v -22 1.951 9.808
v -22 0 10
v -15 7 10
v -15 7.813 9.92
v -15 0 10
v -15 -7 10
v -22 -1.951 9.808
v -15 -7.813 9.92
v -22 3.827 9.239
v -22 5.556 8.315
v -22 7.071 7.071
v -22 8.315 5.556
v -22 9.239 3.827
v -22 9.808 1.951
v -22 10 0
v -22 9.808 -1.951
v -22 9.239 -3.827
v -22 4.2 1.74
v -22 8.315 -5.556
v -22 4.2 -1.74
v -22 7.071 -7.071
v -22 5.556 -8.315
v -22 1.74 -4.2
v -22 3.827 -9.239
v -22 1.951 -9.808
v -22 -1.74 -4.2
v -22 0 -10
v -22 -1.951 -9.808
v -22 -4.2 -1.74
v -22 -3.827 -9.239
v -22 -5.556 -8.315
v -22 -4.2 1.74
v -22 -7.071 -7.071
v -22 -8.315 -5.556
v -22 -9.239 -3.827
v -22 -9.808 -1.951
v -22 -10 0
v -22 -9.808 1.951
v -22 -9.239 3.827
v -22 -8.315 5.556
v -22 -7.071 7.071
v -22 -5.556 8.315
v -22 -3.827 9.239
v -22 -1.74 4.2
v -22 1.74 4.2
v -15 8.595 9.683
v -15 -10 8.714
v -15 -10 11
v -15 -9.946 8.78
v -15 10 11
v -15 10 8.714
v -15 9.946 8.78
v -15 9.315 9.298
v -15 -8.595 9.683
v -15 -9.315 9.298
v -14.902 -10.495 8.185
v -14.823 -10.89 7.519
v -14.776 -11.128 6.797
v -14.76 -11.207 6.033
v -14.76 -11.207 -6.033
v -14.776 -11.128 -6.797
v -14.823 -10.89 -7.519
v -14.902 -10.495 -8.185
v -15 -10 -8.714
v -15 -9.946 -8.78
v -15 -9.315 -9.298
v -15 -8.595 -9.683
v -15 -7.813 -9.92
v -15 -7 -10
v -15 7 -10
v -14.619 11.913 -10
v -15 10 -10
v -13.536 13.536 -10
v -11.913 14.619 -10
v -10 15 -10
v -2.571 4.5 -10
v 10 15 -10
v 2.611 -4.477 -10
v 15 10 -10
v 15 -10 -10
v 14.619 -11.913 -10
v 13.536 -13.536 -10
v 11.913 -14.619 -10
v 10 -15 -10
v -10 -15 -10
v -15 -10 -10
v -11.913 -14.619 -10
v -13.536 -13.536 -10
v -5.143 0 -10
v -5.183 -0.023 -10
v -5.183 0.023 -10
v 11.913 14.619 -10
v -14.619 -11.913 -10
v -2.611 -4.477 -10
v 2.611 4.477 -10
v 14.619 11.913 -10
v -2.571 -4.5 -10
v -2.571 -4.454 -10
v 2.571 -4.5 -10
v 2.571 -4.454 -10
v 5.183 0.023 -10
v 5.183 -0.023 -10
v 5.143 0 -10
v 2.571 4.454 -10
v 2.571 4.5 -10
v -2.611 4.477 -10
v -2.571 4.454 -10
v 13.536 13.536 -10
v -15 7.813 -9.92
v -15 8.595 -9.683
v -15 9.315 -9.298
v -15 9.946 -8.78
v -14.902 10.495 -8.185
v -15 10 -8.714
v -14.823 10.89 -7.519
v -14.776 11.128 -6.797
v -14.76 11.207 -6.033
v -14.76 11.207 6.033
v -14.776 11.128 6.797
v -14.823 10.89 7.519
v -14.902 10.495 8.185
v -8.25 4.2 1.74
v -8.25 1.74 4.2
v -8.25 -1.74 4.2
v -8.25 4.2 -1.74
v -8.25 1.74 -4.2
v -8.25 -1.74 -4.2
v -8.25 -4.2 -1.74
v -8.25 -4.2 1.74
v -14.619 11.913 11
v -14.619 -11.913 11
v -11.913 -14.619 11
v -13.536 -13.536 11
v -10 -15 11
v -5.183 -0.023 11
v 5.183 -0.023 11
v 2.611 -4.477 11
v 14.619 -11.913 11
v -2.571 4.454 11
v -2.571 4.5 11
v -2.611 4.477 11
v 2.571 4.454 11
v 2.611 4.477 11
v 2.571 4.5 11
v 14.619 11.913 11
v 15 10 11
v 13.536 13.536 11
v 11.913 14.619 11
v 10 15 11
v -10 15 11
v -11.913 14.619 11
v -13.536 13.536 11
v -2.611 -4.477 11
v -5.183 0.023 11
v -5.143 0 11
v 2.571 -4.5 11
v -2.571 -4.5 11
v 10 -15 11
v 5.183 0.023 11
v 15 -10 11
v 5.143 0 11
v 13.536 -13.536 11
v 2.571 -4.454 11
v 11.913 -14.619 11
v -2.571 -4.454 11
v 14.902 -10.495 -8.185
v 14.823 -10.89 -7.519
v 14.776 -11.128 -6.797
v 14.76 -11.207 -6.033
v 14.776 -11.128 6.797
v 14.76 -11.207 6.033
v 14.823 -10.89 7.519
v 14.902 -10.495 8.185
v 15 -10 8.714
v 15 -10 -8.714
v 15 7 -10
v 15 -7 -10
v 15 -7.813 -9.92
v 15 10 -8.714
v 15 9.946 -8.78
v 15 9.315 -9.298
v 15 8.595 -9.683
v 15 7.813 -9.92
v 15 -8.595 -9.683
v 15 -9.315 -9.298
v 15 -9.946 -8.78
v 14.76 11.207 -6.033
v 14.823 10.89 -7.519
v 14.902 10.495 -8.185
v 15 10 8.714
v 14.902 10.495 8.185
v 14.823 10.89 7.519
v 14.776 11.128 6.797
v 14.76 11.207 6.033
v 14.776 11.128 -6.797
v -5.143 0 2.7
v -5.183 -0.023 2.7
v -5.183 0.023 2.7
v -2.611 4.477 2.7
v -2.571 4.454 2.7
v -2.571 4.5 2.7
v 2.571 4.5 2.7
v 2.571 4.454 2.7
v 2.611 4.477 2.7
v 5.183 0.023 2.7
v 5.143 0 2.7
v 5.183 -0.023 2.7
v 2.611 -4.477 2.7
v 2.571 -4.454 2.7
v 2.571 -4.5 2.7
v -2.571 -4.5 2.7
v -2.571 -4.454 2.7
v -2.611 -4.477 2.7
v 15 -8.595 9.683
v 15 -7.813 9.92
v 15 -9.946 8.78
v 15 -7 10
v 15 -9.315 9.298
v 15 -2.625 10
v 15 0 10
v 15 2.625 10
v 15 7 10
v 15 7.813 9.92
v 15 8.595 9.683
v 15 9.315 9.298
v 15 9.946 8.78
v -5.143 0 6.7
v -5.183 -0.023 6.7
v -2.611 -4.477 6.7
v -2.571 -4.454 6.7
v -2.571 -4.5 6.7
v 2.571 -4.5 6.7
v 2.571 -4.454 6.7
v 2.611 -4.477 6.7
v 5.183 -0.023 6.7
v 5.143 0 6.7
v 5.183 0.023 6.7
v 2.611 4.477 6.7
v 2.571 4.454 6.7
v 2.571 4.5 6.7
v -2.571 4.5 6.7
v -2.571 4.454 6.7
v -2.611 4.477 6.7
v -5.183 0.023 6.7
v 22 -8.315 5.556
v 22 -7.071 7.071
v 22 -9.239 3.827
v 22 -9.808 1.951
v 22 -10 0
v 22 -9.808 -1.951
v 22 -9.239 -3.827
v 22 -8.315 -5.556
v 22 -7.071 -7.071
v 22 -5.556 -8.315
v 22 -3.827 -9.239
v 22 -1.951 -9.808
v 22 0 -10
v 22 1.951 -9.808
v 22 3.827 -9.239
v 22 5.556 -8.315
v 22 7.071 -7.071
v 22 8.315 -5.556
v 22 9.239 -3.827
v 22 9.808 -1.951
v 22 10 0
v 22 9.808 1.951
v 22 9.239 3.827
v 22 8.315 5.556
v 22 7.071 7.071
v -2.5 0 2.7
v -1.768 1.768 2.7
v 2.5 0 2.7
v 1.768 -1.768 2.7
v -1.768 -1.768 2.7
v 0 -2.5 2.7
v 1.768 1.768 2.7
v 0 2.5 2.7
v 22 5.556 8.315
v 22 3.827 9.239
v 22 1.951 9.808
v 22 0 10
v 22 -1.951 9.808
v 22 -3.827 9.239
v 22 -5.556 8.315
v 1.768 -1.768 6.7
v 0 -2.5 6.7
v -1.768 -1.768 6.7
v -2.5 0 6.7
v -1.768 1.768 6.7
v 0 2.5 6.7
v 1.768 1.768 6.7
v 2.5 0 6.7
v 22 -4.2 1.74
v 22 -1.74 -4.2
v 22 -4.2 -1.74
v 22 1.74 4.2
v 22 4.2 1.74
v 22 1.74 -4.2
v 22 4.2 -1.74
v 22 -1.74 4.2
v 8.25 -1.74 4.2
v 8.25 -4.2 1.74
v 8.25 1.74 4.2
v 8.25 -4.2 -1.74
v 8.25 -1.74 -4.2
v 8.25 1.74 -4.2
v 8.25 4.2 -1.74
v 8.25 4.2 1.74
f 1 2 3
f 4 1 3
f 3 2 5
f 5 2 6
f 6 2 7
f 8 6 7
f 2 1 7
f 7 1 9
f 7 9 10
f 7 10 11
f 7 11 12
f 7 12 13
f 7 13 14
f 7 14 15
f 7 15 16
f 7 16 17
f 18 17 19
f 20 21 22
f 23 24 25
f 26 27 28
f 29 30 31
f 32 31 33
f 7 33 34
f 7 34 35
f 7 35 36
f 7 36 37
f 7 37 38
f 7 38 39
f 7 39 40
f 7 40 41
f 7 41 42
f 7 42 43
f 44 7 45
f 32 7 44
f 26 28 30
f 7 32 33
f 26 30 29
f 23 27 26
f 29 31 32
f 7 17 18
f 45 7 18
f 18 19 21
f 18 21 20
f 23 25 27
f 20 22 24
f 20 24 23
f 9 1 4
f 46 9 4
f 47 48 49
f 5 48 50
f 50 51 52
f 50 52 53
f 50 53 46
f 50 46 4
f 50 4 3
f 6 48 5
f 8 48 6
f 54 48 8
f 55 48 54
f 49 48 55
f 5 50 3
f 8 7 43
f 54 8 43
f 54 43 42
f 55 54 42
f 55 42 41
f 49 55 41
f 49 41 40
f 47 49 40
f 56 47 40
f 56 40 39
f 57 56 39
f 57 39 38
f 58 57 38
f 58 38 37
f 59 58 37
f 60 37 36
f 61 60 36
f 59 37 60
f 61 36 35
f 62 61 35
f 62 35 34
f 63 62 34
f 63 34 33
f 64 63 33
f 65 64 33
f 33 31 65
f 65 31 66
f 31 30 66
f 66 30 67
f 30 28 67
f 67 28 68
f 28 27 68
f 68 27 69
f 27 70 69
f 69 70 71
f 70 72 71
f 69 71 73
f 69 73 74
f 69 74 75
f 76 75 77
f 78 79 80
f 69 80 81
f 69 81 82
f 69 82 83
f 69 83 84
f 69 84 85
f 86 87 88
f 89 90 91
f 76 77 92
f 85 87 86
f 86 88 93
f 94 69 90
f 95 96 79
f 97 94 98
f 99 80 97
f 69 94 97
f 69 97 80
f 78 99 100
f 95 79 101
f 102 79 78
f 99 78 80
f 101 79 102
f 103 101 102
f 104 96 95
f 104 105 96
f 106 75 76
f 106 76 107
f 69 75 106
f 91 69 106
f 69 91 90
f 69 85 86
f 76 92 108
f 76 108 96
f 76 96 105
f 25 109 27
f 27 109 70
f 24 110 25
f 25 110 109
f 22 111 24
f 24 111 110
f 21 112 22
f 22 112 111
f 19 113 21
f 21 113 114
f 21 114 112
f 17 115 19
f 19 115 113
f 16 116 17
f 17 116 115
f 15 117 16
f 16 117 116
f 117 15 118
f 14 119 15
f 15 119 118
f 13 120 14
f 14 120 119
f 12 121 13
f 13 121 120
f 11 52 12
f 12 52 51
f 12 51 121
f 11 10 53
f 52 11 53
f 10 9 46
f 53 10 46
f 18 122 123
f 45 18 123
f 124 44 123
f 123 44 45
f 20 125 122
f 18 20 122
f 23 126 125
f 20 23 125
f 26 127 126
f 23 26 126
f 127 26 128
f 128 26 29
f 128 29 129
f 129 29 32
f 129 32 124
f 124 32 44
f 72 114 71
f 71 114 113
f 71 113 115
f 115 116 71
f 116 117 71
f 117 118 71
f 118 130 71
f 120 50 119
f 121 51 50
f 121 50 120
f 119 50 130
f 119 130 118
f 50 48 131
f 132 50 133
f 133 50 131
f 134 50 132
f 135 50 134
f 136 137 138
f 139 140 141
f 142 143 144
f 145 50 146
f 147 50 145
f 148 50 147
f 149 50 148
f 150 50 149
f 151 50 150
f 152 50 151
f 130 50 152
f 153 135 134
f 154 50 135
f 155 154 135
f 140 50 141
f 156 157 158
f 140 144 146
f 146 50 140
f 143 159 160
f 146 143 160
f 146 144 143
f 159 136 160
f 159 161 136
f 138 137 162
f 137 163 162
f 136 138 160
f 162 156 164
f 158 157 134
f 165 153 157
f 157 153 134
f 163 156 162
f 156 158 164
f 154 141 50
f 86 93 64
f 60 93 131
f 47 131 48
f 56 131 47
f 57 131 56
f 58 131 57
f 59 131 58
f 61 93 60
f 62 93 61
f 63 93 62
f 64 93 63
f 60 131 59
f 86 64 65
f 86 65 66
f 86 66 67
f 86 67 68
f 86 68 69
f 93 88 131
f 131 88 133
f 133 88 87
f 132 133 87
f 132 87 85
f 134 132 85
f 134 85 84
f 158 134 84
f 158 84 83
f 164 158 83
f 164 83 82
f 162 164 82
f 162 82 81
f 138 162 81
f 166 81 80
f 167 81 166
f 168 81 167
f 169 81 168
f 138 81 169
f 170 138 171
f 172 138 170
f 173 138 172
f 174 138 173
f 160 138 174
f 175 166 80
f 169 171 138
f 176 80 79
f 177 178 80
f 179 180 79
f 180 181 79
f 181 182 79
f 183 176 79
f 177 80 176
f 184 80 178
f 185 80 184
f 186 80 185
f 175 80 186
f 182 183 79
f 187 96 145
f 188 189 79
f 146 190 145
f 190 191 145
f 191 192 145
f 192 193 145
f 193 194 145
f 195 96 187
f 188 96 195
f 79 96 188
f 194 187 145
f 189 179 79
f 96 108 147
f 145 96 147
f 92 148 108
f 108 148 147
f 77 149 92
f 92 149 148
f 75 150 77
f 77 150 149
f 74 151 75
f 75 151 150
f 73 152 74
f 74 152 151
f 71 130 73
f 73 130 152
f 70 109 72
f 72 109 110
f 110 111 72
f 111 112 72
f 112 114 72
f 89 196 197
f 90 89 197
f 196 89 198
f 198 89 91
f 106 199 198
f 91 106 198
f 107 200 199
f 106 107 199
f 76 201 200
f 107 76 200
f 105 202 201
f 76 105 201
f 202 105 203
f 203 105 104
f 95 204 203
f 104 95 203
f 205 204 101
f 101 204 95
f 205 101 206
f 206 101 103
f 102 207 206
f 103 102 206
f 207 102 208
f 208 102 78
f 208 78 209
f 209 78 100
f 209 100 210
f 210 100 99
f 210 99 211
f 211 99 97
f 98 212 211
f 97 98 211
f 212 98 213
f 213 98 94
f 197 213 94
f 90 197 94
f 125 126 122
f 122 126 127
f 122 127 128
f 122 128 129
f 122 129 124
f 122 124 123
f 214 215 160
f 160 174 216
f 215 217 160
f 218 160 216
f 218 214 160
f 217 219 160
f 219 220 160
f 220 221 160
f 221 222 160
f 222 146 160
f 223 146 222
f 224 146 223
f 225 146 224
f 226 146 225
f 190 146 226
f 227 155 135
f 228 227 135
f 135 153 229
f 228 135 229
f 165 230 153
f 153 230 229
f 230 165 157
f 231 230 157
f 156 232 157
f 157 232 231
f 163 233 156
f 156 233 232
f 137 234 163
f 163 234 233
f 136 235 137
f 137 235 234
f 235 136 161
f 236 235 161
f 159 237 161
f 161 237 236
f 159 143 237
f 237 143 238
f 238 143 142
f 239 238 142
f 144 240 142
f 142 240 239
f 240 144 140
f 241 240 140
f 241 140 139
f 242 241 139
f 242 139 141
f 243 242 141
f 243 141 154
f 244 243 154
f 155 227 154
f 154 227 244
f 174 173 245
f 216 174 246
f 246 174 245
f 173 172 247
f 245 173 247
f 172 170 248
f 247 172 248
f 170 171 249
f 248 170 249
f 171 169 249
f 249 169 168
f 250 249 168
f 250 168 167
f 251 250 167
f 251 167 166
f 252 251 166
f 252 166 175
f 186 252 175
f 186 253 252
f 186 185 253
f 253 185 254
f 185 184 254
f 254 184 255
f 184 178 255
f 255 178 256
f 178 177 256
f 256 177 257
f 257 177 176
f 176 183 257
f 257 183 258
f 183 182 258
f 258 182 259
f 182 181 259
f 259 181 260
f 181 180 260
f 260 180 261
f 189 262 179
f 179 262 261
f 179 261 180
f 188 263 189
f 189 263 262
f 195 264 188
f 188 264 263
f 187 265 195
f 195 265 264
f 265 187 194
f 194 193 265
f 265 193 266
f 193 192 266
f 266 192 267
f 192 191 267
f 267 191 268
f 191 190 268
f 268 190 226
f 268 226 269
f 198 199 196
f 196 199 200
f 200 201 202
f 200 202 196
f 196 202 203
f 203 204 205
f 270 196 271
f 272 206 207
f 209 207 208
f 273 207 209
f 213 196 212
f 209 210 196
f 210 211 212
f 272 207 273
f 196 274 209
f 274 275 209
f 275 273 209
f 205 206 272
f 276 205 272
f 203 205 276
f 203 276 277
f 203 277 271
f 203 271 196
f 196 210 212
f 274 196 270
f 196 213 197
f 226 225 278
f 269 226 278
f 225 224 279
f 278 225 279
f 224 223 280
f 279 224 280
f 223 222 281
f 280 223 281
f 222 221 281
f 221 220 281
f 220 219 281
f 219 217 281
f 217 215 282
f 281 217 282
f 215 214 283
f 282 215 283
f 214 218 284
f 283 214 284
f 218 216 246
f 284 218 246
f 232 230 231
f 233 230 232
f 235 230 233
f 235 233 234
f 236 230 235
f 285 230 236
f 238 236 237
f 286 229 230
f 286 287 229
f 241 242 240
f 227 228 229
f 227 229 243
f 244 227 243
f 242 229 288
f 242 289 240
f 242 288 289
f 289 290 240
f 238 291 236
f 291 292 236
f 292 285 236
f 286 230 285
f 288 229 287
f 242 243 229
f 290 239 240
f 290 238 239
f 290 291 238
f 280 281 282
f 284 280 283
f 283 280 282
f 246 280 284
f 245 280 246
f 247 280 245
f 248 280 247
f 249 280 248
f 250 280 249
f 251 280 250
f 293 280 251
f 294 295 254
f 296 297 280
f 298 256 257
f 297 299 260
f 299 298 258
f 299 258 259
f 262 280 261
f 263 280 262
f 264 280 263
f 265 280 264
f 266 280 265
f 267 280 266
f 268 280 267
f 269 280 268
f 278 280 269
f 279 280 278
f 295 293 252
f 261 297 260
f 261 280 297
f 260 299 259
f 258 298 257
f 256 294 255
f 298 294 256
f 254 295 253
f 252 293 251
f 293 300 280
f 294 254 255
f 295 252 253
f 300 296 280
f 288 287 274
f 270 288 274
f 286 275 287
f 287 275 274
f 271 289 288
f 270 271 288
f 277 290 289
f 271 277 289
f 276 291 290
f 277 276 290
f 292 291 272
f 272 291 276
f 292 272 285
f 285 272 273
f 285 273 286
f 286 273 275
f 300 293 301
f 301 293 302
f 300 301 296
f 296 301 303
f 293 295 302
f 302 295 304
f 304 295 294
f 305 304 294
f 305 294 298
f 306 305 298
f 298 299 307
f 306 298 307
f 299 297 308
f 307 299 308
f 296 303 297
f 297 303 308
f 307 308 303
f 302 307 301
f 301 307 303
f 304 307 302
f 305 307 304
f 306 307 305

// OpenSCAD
// file: shapes.scad
/*
 *  OpenSCAD Shapes Library (www.openscad.org)
 *  Copyright (C) 2009  Catarina Mota
 *  Copyright (C) 2010  Elmo Mäntynen
 *
 *  License: LGPL 2.1 or later
*/

// 2D Shapes
//ngon(sides, radius, center=false);

// 3D Shapes
//box(width, height, depth);
//roundedBox(width, height, depth, radius);
//cone(height, radius);
//ellipticalCylinder(width, height, depth);
//ellipsoid(width, height);
//tube(height, radius, wall, center = false);
//tube2(height, ID, OD, center = false);
//ovalTube(width, height, depth, wall, center = false);
//hexagon(height, depth);
//octagon(height, depth);
//dodecagon(height, depth);
//hexagram(height, depth);
//rightTriangle(adjacent, opposite, depth);
//equiTriangle(side, depth);
//12ptStar(height, depth);

//----------------------

// size is a vector [w, h, d]
module box(width, height, depth) {
  cube([width, height, depth], true);
}

// size is a vector [w, h, d]
module roundedBox(width, height, depth, radius) {
  size=[width, height, depth];
  cube(size - [2*radius,0,0], true);
  cube(size - [0,2*radius,0], true);
  for (x = [radius-size[0]/2, -radius+size[0]/2],
       y = [radius-size[1]/2, -radius+size[1]/2]) {
    translate([x,y,0]) cylinder(r=radius, h=size[2], center=true);
  }
}

module cone(height, radius, center = false) {
  cylinder(height, radius, 0, center);
}

module ellipticalCylinder(w,h, height, center = false) {
  scale([1, h/w, 1]) cylinder(h=height, r=w, center=center);
}

module ellipsoid(w, h, center = false) {
  scale([1, h/w, 1]) sphere(r=w/2, center=center);
}

// wall is wall thickness
module tube(height, radius, wall, center = false) {
  difference() {
    cylinder(h=height, r=radius, center=center);
    cylinder(h=height, r=radius-wall, center=center);
  }
}

// wall is wall thickness
module tube2(height, ID, OD, center = false) {
  difference() {
    cylinder(h=height, r=OD/2, center=center);
    cylinder(h=height, r=ID/2, center=center);
  }
}

// wall is wall thickness
module ovalTube(height, rx, ry, wall, center = false) {
  difference() {
    scale([1, ry/rx, 1]) cylinder(h=height, r=rx, center=center);
    scale([(rx-wall)/rx, (ry-wall)/rx, 1]) cylinder(h=height, r=rx, center=center);
  }
}

// size is the XY plane size, height in Z
module hexagon(size, height) {
  boxWidth = size/1.75;
  for (r = [-60, 0, 60]) rotate([0,0,r]) cube([boxWidth, size, height], true);
}

// size is the XY plane size, height in Z
module octagon(size, height) {
  intersection() {
    cube([size, size, height], true);
    rotate([0,0,45]) cube([size, size, height], true);
  }
}

// size is the XY plane size, height in Z
module dodecagon(size, height) {
  intersection() {
    hexagon(size, height);
    rotate([0,0,90]) hexagon(size, height);
  }
}

// size is the XY plane size, height in Z
module hexagram(size, height) {
  boxWidth=size/1.75;
  for (v = [[0,1],[0,-1],[1,-1]]) {
    intersection() {
      rotate([0,0,60*v[0]]) cube([size, boxWidth, height], true);
      rotate([0,0,60*v[1]]) cube([size, boxWidth, height], true);
    }
  }
}

module rightTriangle(adjacent, opposite, height) {
  difference() {
    translate([-adjacent/2,opposite/2,0]) cube([adjacent, opposite, height], true);
    translate([-adjacent,0,0]) {
      rotate([0,0,atan(opposite/adjacent)]) dislocateBox(adjacent*2, opposite, height+2);
    }
  }
}

module equiTriangle(side, height) {
  difference() {
    translate([-side/2,side/2,0]) cube([side, side, height], true);
    rotate([0,0,30]) dislocateBox(side*2, side, height);
    translate([-side,0,0]) {
      rotate([0,0,60]) dislocateBox(side*2, side, height);
    }
  }
}

module 12ptStar(size, height) {
  starNum = 3;
  starAngle = 360/starNum;
  for (s = [1:starNum]) {
    rotate([0, 0, s*starAngle]) cube([size, size, height], true);
  }
}

//-----------------------
//MOVES THE ROTATION AXIS OF A BOX FROM ITS CENTER TO THE BOTTOM LEFT CORNER
module dislocateBox(w, h, d) {
  translate([0,0,-d/2]) cube([w,h,d]);
}

//-----------------------
// Tests
//module test2D_ellipse(){ellipse(10, 5);}
module test_ellipsoid(){ellipsoid(10, 5);}

//module test2D_egg_outline(){egg_outline();}
// main file
include <shapes.scad>;

pivot_width = 12 ;
floor_depth=4;
block_size = 20;
block_height = 20;

hex_nut_width = 9;
hex_nut_height = 3.3 ;
drive_screw_diameter = 5 ;

smooth_bar_diameter = 8.4;
threaded_rod_diameter = 8.6;
dRod = smooth_bar_diameter ;

module pivotmotormount(){
difference(){
  union() {	
	// Main housing
	translate(v=[-block_size/2,-block_size/2,-block_height/2])
		minkowski() {
			cube(size = [ block_size,block_size,block_height]);
			cylinder(r=block_size/4);
		}

	// Pivot axis
	hull() {
		translate(v=[-block_size/2-pivot_width,0,0]) rotate(a=[0,90,0]) 
				cylinder(h = block_size+pivot_width*2 , r=block_height/2, $fn=32);
		translate(v=[-block_size/2,-pivot_width,-block_height/2])    cube(size = [ block_size,pivot_width*2,block_height]);
	}
  }

	// drive screw path
	translate(v=[0,0,-block_height/2-2])
		cylinder(h=block_height+4, r=drive_screw_diameter/2);

	// nut trap
	translate(v=[0,0, block_height-hex_nut_height]) hexagon(size=hex_nut_width,height=block_height);
	translate(v=[0,0, -hex_nut_height-floor_depth]) hexagon(size=hex_nut_width,height=block_height);

	// Pivot rod
	translate(v=[-block_size/2-pivot_width-1,0,0]) rotate(a=[0,90,0]) rotate([0, 0, 22.5]) cylinder(h = pivot_width+(block_size-hex_nut_width)/4 , r=dRod/2 / cos(22.5), $fn=8);
	translate(v=[ block_size/2+pivot_width+1,0,0]) rotate(a=[0,-90,0]) rotate([0, 0, 22.5]) cylinder(h = pivot_width+(block_size-hex_nut_width)/4  , r=dRod/2 / cos(22.5), $fn=8);
}
}

pivotmotormount();
